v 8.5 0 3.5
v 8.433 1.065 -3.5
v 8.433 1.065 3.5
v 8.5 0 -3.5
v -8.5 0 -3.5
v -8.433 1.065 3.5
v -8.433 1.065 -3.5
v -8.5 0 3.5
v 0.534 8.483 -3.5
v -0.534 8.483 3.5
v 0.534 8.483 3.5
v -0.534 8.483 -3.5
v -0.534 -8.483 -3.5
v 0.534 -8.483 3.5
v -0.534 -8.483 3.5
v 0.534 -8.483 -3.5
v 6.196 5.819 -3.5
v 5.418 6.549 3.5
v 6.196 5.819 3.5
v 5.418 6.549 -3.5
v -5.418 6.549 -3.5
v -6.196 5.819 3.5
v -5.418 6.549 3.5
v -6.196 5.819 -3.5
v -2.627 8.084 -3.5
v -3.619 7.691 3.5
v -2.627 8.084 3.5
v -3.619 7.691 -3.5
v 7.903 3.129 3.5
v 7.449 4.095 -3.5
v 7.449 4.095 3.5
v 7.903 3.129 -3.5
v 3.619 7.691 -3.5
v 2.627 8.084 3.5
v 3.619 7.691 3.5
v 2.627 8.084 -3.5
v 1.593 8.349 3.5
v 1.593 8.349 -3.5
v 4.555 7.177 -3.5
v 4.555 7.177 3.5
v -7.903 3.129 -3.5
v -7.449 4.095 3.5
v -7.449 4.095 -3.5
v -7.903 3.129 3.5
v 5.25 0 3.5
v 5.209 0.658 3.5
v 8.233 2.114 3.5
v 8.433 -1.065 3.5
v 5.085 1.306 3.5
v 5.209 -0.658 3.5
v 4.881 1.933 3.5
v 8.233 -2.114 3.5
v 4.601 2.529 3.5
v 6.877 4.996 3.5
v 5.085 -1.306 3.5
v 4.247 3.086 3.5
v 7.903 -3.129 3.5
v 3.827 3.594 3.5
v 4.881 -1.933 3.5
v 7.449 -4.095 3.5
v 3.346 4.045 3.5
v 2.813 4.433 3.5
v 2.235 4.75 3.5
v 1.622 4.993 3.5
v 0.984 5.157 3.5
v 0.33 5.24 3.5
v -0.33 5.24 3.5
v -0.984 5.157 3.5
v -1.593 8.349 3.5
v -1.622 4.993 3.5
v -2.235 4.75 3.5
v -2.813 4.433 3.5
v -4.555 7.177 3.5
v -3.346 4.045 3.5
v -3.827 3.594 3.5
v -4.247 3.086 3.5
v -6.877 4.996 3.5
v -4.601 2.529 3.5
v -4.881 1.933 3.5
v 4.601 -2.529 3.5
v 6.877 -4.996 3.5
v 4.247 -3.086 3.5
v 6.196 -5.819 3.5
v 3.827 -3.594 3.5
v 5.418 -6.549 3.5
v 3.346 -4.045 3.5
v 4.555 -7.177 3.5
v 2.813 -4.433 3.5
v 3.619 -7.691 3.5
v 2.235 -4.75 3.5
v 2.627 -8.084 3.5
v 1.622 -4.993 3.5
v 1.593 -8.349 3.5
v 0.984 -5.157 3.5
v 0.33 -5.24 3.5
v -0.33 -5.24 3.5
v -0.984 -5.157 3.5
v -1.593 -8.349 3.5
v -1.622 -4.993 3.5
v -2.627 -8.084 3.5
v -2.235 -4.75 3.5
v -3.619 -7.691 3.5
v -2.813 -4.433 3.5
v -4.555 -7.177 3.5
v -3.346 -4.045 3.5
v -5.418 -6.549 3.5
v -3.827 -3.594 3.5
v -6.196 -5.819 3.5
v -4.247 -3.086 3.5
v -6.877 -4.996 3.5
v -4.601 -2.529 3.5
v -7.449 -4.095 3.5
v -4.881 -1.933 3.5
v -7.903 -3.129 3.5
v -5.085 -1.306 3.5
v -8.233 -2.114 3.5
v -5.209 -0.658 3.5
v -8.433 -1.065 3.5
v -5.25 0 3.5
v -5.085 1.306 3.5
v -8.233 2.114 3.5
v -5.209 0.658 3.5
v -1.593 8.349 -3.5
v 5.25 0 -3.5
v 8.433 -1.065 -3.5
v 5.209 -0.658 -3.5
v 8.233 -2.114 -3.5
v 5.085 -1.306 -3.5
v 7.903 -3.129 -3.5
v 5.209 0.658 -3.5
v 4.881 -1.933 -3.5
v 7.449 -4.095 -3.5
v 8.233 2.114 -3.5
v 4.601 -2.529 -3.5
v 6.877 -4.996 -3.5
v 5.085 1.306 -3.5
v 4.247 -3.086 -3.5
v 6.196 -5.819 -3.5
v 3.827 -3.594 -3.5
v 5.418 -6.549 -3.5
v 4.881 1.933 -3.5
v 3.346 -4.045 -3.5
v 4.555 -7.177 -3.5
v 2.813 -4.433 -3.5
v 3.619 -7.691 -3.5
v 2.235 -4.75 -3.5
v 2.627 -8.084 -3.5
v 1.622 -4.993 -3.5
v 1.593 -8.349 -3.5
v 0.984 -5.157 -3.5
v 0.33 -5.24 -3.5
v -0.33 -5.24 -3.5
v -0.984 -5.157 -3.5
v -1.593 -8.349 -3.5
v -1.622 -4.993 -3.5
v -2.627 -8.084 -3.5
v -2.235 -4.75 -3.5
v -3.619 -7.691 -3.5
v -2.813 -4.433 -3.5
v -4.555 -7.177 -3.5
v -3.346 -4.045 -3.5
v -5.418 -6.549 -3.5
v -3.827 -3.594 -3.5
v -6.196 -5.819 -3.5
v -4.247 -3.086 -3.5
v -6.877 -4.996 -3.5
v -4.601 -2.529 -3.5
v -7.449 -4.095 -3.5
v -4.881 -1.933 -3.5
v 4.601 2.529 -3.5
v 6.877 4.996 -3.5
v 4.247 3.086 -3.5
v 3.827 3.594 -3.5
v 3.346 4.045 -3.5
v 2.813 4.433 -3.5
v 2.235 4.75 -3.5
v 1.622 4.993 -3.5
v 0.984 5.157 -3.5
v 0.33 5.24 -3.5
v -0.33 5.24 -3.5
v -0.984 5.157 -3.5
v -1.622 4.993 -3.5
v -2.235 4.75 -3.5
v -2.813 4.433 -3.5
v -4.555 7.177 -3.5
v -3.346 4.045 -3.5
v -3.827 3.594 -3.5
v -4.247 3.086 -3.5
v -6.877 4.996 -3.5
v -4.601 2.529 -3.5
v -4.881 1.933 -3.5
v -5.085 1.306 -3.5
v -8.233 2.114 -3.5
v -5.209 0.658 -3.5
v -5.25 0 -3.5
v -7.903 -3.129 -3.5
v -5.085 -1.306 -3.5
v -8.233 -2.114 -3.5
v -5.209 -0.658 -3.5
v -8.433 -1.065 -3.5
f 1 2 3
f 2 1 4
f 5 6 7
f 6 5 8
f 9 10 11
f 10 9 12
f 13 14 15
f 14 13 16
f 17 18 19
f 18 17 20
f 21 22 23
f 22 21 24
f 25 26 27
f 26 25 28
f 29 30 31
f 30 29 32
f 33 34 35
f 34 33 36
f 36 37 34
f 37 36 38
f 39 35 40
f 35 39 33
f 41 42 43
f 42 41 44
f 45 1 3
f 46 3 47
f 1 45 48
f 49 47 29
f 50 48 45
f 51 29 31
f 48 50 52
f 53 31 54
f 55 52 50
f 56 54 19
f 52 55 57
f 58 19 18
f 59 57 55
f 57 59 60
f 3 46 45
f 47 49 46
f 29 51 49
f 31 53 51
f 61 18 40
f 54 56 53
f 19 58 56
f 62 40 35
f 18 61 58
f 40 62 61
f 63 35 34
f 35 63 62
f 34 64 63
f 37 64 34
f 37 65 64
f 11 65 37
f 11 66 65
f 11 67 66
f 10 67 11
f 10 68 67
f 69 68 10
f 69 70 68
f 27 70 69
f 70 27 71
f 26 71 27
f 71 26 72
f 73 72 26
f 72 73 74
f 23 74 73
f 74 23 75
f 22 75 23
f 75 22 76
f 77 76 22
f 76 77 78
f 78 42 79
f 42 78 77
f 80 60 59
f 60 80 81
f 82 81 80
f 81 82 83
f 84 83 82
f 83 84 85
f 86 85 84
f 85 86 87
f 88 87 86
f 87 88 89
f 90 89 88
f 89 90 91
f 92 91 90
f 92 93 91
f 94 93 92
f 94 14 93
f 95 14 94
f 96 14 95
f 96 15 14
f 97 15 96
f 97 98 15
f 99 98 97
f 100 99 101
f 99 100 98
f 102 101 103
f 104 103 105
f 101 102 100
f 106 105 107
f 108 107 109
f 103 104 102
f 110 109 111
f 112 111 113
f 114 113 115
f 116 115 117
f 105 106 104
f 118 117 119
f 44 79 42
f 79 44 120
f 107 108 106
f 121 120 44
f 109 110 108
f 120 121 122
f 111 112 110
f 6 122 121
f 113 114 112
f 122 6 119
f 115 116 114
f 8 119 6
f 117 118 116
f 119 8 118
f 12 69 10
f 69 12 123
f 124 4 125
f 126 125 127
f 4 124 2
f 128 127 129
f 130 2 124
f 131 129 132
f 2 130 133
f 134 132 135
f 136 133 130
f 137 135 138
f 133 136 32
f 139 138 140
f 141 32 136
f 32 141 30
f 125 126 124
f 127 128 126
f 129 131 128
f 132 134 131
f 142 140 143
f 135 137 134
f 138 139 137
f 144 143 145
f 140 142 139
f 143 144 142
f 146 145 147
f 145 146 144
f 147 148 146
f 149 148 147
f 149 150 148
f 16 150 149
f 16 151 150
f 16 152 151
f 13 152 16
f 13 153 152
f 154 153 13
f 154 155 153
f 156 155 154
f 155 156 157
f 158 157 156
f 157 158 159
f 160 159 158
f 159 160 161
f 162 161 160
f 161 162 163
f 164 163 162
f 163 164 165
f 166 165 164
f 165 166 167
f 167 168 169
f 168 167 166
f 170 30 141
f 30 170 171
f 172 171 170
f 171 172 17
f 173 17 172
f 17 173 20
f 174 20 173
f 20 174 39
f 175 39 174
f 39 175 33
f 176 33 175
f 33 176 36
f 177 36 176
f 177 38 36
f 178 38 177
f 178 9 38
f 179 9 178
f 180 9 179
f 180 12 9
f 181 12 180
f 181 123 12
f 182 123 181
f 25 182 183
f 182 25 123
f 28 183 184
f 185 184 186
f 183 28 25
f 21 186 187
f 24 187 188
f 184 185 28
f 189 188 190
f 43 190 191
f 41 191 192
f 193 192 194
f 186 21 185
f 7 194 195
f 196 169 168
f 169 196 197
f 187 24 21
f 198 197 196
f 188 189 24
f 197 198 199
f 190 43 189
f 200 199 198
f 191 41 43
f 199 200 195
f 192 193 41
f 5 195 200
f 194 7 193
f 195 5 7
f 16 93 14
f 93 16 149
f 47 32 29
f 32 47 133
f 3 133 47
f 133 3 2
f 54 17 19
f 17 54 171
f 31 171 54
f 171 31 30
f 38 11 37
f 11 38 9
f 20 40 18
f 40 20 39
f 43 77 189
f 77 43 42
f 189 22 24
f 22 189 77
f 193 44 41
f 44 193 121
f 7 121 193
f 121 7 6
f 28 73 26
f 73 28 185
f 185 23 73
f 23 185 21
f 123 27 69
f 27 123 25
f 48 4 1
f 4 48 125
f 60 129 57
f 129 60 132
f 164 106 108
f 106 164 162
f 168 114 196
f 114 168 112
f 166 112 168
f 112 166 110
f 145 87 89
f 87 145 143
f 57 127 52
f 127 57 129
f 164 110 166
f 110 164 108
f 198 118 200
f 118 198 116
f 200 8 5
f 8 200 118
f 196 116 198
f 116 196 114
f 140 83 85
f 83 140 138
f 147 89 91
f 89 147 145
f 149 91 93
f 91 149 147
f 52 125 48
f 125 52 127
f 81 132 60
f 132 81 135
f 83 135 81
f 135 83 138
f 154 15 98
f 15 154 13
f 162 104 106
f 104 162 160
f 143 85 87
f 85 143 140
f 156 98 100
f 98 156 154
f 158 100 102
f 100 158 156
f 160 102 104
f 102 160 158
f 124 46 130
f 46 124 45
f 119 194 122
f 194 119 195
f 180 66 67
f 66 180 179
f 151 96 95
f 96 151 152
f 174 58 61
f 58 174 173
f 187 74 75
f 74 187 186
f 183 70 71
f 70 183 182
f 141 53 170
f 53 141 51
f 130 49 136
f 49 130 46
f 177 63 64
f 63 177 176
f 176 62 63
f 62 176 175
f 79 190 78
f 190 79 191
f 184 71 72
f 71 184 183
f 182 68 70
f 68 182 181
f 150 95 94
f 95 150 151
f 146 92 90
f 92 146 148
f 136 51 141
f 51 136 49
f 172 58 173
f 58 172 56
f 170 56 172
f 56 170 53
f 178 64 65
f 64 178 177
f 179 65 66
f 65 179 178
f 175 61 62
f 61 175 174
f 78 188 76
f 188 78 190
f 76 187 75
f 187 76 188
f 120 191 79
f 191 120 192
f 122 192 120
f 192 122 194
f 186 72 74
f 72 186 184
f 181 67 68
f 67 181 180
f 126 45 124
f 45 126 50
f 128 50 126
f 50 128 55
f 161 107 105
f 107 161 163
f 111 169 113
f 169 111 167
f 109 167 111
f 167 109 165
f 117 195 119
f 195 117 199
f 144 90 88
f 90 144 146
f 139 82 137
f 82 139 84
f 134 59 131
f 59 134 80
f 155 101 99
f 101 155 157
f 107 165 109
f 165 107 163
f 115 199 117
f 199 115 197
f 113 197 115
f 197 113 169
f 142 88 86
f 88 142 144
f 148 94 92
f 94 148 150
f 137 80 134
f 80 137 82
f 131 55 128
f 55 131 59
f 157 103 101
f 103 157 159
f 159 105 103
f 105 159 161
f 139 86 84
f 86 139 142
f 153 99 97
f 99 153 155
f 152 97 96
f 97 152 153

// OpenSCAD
$fn = 50;


difference() {
	union() {
		translate(v = [0, 0, -3.5000000000]) {
			cylinder(h = 7, r = 8.5000000000);
		}
	}
	union() {
		translate(v = [0, 0, -100.0000000000]) {
			cylinder(h = 200, r = 5.2500000000);
		}
	}
}
